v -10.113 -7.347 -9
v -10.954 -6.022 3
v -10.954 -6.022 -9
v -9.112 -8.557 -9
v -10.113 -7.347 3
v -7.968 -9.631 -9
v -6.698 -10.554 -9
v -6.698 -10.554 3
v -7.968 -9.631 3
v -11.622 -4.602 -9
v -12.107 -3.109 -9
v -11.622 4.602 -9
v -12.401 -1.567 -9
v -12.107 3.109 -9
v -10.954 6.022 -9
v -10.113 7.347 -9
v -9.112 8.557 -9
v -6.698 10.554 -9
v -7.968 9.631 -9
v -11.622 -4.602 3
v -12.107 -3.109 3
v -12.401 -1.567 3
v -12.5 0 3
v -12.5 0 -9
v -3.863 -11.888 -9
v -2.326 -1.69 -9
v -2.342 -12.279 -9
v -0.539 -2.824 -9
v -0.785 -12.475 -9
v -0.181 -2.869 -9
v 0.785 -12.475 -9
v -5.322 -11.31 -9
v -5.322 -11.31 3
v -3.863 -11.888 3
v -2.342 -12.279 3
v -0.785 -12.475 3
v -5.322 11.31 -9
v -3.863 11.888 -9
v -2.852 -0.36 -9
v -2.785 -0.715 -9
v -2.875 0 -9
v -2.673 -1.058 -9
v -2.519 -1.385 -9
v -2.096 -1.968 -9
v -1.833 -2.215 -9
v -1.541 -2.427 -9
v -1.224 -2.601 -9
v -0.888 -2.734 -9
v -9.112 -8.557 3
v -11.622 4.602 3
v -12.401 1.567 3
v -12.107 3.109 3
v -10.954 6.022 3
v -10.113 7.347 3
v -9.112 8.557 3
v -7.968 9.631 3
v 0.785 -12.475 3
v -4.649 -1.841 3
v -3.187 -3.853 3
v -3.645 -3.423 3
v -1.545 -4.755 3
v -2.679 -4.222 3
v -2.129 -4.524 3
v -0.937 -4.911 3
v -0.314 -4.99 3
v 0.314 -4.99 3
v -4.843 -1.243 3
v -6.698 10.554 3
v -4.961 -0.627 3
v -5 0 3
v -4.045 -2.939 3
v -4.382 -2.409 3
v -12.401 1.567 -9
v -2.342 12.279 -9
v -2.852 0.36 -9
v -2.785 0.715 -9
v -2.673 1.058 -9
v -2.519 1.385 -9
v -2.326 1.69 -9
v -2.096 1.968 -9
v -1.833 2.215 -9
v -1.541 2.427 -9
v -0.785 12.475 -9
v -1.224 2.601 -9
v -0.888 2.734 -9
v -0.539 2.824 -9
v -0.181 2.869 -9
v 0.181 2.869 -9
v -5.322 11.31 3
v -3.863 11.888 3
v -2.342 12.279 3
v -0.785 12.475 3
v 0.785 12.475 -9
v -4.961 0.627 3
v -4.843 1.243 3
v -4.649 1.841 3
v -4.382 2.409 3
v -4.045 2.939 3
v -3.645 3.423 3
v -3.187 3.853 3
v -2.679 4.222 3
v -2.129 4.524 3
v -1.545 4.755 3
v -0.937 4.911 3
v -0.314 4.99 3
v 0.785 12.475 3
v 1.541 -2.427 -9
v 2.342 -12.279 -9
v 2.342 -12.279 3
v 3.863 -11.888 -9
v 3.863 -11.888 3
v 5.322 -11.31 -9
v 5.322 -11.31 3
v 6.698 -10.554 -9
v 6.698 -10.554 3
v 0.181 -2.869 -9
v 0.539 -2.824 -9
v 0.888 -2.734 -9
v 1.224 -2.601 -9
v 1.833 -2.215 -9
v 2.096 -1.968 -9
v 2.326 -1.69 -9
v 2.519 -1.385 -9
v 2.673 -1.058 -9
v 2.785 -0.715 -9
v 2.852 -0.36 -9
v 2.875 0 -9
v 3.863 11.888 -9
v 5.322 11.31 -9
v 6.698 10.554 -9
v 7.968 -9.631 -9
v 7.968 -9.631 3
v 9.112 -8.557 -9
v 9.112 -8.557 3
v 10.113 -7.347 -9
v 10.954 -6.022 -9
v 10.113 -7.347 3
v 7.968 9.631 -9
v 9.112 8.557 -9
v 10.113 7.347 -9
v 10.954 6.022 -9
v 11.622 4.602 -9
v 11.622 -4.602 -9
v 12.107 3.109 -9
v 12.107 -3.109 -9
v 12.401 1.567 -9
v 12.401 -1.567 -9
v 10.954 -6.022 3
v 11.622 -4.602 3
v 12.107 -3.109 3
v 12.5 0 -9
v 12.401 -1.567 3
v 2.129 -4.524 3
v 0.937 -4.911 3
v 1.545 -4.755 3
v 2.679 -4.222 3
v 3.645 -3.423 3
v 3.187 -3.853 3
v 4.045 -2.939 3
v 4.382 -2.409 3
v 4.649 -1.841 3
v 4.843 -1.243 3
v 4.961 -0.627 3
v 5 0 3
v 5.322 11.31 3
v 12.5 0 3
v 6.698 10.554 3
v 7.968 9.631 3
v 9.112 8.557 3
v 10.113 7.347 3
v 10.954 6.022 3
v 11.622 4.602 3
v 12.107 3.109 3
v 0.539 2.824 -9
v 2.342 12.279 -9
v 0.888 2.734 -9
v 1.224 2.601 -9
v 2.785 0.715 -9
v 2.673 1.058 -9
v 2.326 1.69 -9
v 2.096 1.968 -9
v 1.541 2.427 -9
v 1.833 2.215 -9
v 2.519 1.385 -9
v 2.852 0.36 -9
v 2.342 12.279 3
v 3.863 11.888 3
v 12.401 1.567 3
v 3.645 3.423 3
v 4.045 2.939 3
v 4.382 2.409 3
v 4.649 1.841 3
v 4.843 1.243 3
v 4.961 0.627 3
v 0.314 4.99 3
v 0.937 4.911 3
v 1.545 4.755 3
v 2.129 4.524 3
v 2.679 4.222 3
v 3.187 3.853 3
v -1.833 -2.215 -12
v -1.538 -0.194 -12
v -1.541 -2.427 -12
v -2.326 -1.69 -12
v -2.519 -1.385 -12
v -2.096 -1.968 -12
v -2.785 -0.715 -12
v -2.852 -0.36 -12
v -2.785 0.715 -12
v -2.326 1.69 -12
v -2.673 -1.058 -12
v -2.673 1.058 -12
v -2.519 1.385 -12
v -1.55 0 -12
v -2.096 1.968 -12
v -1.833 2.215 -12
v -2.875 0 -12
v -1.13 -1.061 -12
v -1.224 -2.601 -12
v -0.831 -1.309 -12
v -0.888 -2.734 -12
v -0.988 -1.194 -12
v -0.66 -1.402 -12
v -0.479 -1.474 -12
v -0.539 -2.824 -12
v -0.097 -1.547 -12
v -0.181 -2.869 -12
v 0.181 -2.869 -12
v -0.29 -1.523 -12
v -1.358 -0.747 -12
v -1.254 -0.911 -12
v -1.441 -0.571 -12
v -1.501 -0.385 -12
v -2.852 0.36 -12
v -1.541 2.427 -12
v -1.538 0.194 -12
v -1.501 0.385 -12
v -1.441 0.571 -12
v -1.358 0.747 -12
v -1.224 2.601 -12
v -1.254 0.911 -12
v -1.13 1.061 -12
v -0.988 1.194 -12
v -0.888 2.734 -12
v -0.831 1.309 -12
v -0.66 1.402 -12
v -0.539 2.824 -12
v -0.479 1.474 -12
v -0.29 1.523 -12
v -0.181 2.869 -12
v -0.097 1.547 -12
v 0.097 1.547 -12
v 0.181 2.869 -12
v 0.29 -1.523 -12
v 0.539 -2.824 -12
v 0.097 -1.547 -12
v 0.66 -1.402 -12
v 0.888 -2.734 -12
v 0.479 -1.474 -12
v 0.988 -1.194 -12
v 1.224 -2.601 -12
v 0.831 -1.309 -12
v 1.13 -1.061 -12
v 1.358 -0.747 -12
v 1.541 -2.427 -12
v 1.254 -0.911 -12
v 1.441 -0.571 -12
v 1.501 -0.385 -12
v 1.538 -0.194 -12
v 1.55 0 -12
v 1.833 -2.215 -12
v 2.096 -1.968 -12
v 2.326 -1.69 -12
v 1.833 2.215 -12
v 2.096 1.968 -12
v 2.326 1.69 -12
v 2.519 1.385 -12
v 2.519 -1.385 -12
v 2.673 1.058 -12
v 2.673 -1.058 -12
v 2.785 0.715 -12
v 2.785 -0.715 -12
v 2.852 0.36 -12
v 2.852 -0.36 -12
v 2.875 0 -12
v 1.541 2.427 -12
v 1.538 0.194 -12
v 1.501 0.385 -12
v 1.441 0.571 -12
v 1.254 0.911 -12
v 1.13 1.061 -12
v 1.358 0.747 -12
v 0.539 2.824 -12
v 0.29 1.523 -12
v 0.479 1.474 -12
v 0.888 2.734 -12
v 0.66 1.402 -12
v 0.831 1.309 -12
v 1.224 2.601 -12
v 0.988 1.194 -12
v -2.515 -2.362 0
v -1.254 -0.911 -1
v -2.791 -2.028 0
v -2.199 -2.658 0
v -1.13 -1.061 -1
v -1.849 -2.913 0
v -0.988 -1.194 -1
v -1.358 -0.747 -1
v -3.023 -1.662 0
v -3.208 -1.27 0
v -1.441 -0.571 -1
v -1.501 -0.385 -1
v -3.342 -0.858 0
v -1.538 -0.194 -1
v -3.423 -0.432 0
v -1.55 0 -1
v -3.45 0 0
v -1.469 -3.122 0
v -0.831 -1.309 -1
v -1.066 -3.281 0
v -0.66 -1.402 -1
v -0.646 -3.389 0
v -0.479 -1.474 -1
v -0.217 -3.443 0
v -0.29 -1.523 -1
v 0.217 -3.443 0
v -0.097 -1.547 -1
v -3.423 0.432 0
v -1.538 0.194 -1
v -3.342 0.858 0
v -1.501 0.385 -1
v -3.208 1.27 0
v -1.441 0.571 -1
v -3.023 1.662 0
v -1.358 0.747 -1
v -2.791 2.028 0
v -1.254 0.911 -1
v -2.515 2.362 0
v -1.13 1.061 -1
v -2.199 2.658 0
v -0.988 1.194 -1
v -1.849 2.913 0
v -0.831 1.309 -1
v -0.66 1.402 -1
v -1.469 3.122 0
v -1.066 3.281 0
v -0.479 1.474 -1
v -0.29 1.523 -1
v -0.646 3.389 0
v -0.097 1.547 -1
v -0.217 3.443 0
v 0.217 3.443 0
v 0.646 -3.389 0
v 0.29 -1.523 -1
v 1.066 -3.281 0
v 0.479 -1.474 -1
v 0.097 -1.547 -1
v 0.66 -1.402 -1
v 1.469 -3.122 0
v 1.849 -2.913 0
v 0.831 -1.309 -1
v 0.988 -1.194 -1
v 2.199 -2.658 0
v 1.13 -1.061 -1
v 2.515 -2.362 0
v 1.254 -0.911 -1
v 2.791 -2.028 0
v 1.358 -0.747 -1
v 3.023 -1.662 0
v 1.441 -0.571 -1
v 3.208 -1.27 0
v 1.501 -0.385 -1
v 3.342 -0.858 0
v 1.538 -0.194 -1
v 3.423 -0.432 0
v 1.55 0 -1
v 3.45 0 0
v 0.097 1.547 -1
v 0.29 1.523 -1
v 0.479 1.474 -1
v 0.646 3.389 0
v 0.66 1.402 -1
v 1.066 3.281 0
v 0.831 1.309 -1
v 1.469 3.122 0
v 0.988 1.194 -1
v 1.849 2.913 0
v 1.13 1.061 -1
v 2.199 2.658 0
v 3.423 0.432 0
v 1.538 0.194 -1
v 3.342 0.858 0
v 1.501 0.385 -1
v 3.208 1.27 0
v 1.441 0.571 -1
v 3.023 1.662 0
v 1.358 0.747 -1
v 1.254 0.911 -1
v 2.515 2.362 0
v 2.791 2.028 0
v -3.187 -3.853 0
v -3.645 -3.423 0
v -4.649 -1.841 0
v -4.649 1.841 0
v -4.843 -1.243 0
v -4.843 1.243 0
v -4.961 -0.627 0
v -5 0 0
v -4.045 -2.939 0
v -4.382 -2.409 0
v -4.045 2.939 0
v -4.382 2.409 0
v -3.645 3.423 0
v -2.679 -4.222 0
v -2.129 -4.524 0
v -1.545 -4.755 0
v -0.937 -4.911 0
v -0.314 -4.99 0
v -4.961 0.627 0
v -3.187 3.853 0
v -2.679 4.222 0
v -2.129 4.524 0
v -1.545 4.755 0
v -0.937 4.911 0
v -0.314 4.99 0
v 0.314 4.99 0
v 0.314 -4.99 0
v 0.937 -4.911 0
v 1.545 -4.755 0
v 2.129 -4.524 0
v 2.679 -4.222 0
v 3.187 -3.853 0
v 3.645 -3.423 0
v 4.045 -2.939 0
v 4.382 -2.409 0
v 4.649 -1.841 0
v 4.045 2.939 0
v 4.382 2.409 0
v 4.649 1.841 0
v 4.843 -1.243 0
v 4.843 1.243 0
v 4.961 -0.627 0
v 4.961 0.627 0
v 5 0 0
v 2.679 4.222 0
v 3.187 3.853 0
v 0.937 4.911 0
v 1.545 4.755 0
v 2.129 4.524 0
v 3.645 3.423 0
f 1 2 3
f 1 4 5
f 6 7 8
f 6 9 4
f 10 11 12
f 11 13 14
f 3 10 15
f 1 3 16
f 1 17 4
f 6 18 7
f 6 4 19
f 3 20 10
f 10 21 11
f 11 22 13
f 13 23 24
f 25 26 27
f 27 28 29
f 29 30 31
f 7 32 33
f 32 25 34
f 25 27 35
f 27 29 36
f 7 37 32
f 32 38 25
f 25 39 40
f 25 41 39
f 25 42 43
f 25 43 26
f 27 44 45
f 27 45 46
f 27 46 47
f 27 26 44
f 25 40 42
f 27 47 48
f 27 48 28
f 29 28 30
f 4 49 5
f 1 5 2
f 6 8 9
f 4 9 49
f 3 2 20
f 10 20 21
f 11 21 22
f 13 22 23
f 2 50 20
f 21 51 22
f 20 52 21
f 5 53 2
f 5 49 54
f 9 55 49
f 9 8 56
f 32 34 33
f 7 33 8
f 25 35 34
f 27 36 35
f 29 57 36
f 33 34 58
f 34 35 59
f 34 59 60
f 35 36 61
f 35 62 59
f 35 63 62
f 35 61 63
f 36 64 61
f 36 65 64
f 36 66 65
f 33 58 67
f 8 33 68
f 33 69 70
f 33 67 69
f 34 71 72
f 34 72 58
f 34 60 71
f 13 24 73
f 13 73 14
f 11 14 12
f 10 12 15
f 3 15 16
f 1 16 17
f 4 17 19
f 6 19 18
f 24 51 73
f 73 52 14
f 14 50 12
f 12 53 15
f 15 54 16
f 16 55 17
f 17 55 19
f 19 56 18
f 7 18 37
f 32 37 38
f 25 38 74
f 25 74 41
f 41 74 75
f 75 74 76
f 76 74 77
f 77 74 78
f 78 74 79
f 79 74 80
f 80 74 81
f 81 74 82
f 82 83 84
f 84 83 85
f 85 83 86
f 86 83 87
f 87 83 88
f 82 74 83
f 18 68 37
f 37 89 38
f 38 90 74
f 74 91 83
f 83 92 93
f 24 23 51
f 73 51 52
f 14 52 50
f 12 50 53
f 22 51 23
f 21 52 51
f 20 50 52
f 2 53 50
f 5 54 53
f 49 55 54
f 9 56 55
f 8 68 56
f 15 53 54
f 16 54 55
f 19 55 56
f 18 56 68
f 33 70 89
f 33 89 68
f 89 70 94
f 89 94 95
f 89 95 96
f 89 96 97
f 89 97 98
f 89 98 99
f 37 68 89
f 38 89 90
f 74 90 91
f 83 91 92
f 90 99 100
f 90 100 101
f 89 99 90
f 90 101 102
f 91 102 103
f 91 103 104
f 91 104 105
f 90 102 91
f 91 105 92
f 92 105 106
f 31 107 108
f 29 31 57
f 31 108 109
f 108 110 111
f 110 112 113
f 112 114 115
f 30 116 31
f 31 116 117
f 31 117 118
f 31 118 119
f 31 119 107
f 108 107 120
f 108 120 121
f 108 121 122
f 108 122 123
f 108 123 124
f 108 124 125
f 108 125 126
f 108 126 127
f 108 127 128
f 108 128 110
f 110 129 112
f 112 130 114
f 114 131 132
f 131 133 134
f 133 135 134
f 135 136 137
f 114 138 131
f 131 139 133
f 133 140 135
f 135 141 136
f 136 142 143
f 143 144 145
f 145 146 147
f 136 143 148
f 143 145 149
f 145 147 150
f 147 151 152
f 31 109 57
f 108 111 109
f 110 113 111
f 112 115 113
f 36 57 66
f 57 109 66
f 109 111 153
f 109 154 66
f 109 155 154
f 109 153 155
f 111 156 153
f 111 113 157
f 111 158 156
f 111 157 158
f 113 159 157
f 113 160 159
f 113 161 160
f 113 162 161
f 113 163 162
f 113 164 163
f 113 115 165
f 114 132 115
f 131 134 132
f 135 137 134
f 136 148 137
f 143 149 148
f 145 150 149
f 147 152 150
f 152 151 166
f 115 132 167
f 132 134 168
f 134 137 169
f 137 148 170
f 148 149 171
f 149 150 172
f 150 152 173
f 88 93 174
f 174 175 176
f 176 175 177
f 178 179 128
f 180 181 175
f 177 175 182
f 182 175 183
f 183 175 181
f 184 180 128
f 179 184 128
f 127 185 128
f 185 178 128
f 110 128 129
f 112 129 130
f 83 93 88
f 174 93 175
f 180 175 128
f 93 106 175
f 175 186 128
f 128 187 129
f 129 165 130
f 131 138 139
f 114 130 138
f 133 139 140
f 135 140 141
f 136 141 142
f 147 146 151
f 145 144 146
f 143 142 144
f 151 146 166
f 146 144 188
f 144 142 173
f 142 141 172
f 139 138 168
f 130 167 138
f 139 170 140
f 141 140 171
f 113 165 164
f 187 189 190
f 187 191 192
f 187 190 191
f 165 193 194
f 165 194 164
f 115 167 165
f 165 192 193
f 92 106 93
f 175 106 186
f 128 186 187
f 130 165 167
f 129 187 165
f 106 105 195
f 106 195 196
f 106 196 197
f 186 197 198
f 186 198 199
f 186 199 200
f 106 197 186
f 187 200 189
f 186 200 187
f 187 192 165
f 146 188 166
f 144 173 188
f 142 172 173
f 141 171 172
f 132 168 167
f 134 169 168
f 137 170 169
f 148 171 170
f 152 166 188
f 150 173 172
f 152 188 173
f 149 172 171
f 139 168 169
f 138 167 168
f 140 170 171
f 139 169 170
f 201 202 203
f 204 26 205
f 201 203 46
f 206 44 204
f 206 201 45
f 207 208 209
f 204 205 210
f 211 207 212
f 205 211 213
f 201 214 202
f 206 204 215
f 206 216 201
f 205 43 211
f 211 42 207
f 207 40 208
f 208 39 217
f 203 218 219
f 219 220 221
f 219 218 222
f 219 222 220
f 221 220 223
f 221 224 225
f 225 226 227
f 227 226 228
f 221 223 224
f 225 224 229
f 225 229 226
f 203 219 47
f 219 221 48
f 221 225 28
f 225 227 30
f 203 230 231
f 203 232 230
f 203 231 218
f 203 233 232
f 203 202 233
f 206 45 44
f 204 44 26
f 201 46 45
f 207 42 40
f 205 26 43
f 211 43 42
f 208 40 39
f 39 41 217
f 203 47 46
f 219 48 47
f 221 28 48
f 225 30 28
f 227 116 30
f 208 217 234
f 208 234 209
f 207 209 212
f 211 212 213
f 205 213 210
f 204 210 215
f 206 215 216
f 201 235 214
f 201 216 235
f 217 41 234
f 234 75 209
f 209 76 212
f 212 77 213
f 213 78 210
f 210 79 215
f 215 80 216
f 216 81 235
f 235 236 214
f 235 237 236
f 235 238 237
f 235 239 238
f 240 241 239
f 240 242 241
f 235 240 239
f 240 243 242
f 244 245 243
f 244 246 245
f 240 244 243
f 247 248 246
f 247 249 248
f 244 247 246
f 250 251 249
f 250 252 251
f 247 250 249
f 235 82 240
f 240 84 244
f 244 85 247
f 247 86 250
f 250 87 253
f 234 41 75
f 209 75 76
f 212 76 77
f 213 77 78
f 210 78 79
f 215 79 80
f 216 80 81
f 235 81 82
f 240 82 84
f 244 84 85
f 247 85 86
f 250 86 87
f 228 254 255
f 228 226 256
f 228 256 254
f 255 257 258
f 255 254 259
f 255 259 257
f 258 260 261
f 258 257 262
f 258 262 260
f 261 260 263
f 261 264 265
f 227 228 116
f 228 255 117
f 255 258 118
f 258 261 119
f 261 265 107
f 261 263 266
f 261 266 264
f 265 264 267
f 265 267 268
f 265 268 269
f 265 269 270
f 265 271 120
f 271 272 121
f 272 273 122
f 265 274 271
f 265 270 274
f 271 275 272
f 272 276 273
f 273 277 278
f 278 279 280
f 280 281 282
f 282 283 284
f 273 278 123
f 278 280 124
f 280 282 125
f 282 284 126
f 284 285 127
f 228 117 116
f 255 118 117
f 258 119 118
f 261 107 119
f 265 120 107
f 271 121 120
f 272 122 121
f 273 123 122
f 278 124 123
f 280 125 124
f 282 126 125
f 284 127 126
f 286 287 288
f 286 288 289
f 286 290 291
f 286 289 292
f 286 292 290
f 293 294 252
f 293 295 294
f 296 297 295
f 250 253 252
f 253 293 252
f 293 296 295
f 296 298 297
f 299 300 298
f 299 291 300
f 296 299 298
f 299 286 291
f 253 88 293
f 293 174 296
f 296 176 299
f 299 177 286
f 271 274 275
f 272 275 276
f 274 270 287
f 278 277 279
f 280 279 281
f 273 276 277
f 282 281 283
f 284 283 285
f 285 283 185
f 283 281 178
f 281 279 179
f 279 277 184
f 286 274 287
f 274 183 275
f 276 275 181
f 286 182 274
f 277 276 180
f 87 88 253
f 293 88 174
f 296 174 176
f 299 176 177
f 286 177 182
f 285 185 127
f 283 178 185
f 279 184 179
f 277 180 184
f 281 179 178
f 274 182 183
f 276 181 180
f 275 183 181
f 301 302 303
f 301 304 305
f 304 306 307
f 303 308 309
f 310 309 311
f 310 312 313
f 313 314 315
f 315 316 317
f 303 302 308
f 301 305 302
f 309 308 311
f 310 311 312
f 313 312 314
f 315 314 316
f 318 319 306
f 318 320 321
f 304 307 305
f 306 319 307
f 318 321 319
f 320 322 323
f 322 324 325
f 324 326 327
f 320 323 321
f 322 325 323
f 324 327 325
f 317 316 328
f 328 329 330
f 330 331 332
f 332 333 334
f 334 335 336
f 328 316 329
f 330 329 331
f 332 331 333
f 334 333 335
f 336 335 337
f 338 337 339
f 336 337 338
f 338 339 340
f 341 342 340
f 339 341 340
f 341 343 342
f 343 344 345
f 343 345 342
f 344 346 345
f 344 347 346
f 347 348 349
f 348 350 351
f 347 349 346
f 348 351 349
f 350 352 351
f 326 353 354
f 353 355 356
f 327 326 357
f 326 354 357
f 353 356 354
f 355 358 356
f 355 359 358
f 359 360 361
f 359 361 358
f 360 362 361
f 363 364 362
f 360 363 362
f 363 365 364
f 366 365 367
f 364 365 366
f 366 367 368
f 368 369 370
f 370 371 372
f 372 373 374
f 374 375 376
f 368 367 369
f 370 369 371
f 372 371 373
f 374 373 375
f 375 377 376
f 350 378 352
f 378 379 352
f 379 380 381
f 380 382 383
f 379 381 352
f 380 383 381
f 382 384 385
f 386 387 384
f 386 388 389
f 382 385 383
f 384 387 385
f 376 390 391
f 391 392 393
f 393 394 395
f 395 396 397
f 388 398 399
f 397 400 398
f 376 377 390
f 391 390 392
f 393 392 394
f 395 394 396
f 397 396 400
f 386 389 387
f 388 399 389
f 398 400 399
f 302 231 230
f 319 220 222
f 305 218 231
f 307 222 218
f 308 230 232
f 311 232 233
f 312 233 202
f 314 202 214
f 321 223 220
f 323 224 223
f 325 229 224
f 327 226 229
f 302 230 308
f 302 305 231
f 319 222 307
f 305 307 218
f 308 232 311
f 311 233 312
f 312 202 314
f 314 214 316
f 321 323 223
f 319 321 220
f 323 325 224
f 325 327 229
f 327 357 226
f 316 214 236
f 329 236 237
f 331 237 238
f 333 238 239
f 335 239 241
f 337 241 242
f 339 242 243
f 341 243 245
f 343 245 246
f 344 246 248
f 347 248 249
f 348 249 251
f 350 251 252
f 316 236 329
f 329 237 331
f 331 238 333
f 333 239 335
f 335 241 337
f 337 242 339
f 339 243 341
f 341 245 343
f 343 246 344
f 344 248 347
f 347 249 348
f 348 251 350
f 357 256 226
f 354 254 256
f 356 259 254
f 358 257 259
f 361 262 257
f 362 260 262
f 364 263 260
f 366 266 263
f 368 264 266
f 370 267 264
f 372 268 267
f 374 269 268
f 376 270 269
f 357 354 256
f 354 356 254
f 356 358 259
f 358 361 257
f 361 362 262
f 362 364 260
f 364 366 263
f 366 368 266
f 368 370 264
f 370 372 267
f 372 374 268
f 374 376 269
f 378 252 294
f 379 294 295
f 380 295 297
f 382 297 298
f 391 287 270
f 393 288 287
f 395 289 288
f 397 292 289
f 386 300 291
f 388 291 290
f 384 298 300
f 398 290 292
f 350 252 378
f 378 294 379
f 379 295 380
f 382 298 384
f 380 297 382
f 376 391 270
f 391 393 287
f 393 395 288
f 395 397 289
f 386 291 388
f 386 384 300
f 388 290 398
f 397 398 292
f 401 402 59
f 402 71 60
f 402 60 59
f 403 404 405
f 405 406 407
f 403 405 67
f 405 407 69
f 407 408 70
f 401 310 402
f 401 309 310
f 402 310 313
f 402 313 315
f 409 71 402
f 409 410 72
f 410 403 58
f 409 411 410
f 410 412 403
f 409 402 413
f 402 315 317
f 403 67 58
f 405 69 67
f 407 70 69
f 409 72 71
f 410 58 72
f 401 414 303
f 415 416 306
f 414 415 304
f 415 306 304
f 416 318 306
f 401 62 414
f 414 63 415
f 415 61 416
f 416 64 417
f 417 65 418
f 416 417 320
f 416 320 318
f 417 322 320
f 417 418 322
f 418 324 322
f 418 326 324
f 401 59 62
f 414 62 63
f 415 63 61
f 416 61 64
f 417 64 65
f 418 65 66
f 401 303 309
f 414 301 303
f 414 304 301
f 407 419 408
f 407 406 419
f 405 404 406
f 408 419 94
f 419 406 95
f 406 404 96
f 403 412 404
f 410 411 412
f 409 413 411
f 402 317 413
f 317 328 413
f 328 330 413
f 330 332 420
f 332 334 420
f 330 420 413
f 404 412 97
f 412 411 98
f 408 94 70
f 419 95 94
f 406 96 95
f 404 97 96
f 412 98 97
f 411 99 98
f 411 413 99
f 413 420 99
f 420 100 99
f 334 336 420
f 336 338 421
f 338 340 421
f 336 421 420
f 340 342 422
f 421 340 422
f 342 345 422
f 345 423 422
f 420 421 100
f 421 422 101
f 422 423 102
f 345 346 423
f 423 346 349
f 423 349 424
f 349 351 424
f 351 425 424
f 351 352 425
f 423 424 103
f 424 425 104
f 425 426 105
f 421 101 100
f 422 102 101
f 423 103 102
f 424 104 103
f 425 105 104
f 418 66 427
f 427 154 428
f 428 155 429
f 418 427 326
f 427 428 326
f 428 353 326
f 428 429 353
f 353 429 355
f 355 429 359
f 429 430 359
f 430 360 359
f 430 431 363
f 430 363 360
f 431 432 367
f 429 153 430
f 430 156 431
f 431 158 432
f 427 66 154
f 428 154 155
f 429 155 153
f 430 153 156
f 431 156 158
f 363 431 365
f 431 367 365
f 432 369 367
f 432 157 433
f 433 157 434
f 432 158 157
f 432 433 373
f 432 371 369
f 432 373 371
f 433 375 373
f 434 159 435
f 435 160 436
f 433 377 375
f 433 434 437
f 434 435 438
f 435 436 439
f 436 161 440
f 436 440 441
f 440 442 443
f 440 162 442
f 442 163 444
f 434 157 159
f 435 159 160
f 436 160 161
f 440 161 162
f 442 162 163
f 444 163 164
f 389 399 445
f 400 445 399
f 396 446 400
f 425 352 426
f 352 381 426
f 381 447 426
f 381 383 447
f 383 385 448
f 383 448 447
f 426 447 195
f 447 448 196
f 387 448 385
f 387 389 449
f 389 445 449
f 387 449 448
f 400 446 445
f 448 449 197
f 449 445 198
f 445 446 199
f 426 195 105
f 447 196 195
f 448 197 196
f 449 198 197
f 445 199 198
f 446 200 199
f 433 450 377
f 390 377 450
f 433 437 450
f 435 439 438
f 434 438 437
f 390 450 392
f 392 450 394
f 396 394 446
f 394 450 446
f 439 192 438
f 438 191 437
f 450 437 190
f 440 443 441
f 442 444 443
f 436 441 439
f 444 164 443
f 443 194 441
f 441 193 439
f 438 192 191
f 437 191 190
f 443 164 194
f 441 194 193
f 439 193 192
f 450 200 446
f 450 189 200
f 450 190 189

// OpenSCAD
$fn = 50;


difference() {
	union() {
		translate(v = [0, 0, -9.0000000000]) {
			cylinder(h = 12, r = 12.5000000000);
		}
		#translate(v = [0, 0, -12.0000000000]) {
			cylinder(h = 12, r = 2.8750000000);
		}
	}
	union() {
		translate(v = [0, 0, 0]) {
			rotate(a = [0, 0, 0]) {
				difference() {
					union() {
						translate(v = [0, 0, -12.0000000000]) {
							cylinder(h = 12, r = 1.2500000000);
						}
						translate(v = [0, 0, -1.0000000000]) {
							cylinder(h = 1.0000000000, r1 = 1.5500000000, r2 = 3.4500000000);
						}
						translate(v = [0, 0, -12.0000000000]) {
							cylinder(h = 12, r = 1.5500000000);
						}
						translate(v = [0, 0, -12.0000000000]) {
							cylinder(h = 12, r = 1.2500000000);
						}
					}
					union();
				}
			}
		}
		#cylinder(h = 3, r = 5.0000000000);
	}
}
